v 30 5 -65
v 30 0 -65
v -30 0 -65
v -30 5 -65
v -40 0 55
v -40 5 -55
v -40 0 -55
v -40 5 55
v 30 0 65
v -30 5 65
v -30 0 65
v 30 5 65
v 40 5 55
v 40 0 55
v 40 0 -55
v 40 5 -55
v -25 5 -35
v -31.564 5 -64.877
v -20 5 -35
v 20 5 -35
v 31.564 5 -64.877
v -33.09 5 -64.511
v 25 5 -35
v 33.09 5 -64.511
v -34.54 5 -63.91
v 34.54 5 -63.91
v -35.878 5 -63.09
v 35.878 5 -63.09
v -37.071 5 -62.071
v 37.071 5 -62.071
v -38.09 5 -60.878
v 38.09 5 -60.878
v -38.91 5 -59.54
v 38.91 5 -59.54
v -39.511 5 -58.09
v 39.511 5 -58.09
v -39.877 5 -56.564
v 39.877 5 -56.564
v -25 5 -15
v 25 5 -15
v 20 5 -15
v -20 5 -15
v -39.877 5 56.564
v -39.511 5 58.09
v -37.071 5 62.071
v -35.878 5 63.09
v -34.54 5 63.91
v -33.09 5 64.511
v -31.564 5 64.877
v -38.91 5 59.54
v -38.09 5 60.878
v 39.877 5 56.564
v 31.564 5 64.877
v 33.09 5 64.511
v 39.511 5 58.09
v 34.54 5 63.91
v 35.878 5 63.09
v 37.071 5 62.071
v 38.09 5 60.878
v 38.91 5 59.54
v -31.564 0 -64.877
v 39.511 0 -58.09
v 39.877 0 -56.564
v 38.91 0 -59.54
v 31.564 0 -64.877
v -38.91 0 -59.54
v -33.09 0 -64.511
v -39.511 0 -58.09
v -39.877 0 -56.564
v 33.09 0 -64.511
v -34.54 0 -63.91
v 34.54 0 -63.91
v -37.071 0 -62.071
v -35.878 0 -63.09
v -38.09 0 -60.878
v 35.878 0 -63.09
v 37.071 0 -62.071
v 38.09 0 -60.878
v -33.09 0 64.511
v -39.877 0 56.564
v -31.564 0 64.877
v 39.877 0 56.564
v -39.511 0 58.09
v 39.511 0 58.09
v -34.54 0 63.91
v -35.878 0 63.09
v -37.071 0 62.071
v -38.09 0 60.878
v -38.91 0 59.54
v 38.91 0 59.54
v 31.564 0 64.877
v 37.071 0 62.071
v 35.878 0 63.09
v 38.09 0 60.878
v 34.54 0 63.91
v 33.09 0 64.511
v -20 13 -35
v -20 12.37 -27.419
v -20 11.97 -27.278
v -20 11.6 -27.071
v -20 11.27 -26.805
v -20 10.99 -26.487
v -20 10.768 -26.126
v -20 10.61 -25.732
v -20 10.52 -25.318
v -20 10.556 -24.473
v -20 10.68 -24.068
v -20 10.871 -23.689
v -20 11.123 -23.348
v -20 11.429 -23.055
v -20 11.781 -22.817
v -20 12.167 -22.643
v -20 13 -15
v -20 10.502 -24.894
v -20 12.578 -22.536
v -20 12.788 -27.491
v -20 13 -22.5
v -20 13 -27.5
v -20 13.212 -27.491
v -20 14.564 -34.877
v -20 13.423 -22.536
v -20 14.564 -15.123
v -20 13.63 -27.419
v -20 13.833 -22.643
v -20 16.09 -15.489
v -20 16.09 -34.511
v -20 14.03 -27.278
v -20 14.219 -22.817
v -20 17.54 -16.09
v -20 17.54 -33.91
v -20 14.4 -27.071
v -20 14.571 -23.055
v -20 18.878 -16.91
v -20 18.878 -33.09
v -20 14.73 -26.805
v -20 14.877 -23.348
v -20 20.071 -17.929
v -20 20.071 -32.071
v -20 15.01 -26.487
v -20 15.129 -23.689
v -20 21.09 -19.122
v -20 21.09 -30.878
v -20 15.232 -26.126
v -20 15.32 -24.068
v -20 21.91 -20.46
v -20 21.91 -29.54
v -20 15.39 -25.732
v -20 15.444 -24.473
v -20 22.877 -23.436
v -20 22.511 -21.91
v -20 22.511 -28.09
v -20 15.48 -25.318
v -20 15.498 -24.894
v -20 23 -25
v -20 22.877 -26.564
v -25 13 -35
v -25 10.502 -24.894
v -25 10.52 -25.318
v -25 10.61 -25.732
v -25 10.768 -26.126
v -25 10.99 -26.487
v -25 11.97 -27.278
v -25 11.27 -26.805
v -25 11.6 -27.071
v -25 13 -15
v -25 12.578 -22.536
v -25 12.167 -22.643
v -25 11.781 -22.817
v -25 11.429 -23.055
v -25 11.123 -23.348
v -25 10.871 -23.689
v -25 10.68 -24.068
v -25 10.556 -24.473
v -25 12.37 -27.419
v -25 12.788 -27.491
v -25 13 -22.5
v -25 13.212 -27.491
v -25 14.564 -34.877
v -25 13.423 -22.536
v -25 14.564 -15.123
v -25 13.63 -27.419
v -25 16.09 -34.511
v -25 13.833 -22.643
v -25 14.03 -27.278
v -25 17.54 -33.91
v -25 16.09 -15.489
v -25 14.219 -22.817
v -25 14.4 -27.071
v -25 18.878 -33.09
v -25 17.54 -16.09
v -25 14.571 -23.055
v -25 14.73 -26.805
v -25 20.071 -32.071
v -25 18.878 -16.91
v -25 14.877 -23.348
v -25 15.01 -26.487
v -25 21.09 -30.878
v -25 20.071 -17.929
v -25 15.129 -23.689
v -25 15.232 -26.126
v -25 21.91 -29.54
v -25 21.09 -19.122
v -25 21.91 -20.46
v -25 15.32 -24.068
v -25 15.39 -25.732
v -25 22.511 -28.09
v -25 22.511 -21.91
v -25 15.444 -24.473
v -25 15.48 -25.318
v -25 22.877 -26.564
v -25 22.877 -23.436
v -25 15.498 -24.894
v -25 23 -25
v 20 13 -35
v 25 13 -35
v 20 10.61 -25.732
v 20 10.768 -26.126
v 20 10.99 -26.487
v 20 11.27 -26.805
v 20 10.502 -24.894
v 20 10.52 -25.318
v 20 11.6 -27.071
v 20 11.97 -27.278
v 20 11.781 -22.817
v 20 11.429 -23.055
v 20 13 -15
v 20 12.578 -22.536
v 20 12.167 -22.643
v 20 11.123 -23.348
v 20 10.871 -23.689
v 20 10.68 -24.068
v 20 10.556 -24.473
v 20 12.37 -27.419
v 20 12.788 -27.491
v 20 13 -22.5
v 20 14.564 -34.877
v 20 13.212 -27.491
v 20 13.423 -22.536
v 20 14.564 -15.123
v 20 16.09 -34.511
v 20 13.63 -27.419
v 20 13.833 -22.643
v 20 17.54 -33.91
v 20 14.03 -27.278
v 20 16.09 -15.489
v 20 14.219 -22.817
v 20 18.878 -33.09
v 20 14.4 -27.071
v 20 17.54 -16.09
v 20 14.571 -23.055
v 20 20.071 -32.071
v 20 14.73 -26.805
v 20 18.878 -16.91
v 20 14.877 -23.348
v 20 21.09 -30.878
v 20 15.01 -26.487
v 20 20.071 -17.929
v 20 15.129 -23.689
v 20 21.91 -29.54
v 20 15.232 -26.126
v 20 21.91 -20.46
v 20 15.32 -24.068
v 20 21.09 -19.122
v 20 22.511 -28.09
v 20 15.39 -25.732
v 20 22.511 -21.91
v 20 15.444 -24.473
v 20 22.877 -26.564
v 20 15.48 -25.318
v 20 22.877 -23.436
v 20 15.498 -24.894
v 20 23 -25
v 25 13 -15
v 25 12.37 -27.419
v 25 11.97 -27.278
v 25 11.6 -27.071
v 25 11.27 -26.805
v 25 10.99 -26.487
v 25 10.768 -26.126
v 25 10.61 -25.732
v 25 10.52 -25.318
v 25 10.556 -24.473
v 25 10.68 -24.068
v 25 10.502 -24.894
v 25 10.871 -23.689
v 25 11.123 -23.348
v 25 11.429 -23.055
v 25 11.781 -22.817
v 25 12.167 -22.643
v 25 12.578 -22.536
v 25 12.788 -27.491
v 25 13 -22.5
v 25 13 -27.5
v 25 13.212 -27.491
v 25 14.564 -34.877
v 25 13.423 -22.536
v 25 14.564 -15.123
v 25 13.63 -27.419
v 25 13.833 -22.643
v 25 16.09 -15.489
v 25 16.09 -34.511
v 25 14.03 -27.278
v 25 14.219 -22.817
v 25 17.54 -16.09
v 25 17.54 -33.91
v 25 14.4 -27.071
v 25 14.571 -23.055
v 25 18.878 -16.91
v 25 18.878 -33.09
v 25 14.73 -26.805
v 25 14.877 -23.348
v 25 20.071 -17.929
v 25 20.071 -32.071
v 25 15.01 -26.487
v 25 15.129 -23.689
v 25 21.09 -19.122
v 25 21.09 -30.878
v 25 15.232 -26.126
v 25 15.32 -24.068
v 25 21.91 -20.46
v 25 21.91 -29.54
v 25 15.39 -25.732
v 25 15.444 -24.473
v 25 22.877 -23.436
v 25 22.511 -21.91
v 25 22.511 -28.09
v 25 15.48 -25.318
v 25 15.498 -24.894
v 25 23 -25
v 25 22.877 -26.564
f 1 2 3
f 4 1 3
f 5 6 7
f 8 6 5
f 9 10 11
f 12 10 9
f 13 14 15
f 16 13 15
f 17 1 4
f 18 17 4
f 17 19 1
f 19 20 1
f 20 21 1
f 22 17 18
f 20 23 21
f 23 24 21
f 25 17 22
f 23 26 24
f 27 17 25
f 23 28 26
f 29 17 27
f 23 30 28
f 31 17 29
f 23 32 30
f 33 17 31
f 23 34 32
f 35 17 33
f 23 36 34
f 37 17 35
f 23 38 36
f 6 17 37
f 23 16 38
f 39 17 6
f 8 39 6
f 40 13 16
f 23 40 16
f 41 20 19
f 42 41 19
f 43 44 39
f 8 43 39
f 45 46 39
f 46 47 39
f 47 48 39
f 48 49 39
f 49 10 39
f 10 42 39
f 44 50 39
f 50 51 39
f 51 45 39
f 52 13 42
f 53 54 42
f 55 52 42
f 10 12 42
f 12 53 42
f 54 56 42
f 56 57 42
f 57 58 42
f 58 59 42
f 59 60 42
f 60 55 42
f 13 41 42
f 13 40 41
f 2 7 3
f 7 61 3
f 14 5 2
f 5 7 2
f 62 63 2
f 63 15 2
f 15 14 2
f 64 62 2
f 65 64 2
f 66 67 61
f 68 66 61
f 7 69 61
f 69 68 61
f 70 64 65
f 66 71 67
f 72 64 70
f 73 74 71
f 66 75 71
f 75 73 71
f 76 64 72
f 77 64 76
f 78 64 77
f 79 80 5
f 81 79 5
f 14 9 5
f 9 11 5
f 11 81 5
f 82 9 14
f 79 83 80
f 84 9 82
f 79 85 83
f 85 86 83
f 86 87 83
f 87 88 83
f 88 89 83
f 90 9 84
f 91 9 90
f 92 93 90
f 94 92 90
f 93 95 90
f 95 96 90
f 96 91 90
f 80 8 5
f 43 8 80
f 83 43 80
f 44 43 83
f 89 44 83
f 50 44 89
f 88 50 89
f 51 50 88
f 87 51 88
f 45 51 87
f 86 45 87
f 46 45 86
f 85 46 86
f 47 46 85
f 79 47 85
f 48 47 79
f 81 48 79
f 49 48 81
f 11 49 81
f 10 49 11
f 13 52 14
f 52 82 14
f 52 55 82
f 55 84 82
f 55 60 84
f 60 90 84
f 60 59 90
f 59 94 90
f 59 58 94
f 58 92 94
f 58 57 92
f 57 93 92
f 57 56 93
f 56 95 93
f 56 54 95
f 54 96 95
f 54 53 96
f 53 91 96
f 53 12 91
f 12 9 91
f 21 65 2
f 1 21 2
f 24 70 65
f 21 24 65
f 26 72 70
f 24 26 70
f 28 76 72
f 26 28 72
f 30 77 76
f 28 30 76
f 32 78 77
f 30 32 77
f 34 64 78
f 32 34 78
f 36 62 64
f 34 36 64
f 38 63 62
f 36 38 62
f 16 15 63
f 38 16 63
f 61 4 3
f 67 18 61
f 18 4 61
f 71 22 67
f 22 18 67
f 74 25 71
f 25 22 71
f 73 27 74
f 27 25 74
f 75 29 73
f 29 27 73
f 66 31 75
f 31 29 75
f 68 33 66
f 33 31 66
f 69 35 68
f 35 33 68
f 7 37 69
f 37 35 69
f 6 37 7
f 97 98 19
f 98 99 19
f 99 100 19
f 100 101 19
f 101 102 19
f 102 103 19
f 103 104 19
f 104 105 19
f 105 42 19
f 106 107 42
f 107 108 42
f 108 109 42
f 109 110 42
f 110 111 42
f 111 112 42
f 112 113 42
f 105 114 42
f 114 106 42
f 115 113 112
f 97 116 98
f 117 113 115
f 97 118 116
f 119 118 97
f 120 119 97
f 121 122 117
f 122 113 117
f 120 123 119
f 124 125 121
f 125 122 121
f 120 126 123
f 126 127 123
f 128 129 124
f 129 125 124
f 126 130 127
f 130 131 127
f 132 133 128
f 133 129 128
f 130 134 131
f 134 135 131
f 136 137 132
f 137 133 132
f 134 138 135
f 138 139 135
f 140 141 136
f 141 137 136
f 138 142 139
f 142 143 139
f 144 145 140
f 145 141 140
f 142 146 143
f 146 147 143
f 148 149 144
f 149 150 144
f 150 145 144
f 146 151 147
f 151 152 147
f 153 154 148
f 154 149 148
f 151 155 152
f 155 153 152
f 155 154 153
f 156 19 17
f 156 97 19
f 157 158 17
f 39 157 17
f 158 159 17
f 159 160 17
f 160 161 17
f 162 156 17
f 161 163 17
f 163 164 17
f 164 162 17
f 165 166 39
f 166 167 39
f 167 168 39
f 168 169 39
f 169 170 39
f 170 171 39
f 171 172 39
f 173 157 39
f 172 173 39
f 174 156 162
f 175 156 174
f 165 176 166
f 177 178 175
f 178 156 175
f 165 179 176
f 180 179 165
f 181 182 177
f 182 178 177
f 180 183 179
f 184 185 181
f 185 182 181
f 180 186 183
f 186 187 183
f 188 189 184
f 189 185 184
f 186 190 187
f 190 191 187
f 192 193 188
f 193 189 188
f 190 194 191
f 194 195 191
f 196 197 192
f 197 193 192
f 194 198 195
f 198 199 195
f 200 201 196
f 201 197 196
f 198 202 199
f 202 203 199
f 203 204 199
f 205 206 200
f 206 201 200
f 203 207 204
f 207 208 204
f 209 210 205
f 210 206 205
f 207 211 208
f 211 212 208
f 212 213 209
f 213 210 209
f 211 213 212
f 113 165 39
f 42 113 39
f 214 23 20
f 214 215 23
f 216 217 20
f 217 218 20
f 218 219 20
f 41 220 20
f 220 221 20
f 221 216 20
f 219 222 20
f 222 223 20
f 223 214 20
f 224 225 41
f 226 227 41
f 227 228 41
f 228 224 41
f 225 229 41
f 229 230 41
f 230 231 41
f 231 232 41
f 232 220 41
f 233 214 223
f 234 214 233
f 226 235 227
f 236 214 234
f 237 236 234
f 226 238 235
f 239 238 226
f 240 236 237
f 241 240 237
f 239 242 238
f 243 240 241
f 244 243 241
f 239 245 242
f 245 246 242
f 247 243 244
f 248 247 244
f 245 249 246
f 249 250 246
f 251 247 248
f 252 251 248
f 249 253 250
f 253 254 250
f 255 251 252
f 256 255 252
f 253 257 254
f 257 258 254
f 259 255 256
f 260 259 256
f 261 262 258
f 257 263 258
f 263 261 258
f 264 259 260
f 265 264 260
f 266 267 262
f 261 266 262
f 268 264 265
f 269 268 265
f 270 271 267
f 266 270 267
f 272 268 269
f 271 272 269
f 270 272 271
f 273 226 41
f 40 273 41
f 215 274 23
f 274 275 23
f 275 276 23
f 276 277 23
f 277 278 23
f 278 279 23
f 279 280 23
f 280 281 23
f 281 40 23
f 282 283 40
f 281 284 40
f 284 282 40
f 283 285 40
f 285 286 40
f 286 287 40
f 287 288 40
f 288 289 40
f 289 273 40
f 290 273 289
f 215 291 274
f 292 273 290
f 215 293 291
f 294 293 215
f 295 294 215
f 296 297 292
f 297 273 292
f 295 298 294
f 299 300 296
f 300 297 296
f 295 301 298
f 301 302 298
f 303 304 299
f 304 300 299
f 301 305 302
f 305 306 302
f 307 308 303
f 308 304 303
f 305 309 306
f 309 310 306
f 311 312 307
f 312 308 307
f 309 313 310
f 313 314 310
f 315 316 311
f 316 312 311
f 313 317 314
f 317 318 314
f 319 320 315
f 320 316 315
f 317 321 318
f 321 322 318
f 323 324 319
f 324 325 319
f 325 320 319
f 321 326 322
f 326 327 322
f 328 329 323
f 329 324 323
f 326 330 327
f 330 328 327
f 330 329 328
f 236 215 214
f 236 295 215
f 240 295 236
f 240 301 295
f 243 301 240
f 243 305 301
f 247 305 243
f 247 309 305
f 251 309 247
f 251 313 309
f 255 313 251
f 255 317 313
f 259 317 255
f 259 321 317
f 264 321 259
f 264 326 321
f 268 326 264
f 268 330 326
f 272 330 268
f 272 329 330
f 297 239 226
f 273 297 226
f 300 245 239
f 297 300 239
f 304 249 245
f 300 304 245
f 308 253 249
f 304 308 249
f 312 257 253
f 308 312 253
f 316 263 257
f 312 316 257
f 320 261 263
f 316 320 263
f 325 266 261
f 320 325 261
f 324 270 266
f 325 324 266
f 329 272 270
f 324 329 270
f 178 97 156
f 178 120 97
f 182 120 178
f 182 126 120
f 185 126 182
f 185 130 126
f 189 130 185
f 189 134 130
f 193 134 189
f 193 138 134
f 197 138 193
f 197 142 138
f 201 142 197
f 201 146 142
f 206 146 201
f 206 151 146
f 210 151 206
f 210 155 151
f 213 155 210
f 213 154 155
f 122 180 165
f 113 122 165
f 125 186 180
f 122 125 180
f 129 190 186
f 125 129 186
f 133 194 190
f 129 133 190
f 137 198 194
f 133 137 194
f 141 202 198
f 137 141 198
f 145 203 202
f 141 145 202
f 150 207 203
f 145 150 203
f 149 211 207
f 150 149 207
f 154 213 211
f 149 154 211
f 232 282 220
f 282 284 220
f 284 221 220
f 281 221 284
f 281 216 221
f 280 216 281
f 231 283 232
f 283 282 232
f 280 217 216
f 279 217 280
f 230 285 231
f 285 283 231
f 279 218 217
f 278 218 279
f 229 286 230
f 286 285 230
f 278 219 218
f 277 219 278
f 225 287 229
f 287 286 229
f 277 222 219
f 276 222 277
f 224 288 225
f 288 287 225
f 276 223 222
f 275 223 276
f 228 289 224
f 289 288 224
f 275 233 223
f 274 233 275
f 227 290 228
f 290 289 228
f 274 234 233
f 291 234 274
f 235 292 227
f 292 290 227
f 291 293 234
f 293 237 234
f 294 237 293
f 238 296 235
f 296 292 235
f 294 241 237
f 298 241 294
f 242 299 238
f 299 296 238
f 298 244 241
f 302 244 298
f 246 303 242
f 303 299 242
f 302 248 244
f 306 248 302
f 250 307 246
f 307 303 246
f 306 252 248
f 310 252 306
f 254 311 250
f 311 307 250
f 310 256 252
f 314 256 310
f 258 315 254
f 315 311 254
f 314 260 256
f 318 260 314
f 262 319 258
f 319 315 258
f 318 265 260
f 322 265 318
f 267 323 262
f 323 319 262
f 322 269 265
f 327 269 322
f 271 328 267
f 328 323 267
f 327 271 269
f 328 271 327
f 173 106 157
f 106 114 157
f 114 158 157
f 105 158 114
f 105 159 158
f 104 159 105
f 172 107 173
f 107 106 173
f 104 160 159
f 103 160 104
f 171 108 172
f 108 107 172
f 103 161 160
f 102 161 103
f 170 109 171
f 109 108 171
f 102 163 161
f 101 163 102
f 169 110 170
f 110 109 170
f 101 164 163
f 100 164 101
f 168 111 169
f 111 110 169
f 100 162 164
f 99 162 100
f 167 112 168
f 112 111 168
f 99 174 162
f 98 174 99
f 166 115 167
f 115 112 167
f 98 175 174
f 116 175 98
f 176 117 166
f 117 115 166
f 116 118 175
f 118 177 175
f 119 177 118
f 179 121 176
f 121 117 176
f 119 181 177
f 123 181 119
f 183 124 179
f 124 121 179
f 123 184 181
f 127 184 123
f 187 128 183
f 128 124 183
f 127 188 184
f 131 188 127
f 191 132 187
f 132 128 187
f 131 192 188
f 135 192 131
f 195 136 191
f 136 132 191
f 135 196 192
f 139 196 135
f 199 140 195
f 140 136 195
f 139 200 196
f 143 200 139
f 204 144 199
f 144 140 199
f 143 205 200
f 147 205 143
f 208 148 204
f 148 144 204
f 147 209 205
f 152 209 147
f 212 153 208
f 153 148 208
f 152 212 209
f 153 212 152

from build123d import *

# Parameters (mm, degrees)
SZKIC1_W                    = 80
SZKIC1_H                    = 130
DODANIE_WYCI_GNI_CIE1_DEPTH = 5
ZAOKR_GLENIE1_R             = 10
SZKIC2_W                    = 5
SZKIC2_H                    = 20
DODANIE_WYCI_GNI_CIE2_DEPTH = 18
ZAOKR_GLENIE2_R             = 10
SZKIC3_R                    = 2.5
WYTNIJ_WYCI_GNI_CIE1_DEPTH  = 100


with BuildPart() as part:
    # Szkic1 → Dodanie-wyciągnięcie1 (new body)
    with BuildSketch(Plane(origin=(0, 0, 0), x_dir=(1, 0, 0), z_dir=(0, 1, 0))):
        Rectangle(SZKIC1_W, SZKIC1_H)
    extrude(amount=DODANIE_WYCI_GNI_CIE1_DEPTH)

    # Zaokrąglenie1
    zaokr_glenie1_edges = [part.edges().sort_by_distance(p)[0] for p in [
        (40, 2.5, -65),
        (40, 2.5, 65),
        (-40, 2.5, 65),
        (-40, 2.5, -65),
    ]]
    fillet(zaokr_glenie1_edges, radius=ZAOKR_GLENIE1_R)

    # Szkic2 → Dodanie-wyciągnięcie2 (add)
    with BuildSketch(Plane(origin=(0, 5, 0), x_dir=(1, 0, 0), z_dir=(0, 1, 0))):
        with Locations((-22.5, 25)):
            Rectangle(SZKIC2_W, SZKIC2_H)
        with Locations((22.5, 25)):
            Rectangle(SZKIC2_W, SZKIC2_H)
    extrude(amount=DODANIE_WYCI_GNI_CIE2_DEPTH)

    # Zaokrąglenie2
    zaokr_glenie2_edges = [part.edges().sort_by_distance(p)[0] for p in [
        (22.5, 23, -15),
        (22.5, 23, -35),
        (-22.5, 23, -15),
        (-22.5, 23, -35),
    ]]
    fillet(zaokr_glenie2_edges, radius=ZAOKR_GLENIE2_R - 0.0001)  # a hair under: the kernel refuses the full size

    # Szkic3 → Wytnij-wyciągnięcie1 (cut)
    with BuildSketch(Plane.ZY.offset(25)):
        with Locations((-25, 13)):
            Circle(SZKIC3_R)
    extrude(amount=-WYTNIJ_WYCI_GNI_CIE1_DEPTH, mode=Mode.SUBTRACT)


solid = part.part
